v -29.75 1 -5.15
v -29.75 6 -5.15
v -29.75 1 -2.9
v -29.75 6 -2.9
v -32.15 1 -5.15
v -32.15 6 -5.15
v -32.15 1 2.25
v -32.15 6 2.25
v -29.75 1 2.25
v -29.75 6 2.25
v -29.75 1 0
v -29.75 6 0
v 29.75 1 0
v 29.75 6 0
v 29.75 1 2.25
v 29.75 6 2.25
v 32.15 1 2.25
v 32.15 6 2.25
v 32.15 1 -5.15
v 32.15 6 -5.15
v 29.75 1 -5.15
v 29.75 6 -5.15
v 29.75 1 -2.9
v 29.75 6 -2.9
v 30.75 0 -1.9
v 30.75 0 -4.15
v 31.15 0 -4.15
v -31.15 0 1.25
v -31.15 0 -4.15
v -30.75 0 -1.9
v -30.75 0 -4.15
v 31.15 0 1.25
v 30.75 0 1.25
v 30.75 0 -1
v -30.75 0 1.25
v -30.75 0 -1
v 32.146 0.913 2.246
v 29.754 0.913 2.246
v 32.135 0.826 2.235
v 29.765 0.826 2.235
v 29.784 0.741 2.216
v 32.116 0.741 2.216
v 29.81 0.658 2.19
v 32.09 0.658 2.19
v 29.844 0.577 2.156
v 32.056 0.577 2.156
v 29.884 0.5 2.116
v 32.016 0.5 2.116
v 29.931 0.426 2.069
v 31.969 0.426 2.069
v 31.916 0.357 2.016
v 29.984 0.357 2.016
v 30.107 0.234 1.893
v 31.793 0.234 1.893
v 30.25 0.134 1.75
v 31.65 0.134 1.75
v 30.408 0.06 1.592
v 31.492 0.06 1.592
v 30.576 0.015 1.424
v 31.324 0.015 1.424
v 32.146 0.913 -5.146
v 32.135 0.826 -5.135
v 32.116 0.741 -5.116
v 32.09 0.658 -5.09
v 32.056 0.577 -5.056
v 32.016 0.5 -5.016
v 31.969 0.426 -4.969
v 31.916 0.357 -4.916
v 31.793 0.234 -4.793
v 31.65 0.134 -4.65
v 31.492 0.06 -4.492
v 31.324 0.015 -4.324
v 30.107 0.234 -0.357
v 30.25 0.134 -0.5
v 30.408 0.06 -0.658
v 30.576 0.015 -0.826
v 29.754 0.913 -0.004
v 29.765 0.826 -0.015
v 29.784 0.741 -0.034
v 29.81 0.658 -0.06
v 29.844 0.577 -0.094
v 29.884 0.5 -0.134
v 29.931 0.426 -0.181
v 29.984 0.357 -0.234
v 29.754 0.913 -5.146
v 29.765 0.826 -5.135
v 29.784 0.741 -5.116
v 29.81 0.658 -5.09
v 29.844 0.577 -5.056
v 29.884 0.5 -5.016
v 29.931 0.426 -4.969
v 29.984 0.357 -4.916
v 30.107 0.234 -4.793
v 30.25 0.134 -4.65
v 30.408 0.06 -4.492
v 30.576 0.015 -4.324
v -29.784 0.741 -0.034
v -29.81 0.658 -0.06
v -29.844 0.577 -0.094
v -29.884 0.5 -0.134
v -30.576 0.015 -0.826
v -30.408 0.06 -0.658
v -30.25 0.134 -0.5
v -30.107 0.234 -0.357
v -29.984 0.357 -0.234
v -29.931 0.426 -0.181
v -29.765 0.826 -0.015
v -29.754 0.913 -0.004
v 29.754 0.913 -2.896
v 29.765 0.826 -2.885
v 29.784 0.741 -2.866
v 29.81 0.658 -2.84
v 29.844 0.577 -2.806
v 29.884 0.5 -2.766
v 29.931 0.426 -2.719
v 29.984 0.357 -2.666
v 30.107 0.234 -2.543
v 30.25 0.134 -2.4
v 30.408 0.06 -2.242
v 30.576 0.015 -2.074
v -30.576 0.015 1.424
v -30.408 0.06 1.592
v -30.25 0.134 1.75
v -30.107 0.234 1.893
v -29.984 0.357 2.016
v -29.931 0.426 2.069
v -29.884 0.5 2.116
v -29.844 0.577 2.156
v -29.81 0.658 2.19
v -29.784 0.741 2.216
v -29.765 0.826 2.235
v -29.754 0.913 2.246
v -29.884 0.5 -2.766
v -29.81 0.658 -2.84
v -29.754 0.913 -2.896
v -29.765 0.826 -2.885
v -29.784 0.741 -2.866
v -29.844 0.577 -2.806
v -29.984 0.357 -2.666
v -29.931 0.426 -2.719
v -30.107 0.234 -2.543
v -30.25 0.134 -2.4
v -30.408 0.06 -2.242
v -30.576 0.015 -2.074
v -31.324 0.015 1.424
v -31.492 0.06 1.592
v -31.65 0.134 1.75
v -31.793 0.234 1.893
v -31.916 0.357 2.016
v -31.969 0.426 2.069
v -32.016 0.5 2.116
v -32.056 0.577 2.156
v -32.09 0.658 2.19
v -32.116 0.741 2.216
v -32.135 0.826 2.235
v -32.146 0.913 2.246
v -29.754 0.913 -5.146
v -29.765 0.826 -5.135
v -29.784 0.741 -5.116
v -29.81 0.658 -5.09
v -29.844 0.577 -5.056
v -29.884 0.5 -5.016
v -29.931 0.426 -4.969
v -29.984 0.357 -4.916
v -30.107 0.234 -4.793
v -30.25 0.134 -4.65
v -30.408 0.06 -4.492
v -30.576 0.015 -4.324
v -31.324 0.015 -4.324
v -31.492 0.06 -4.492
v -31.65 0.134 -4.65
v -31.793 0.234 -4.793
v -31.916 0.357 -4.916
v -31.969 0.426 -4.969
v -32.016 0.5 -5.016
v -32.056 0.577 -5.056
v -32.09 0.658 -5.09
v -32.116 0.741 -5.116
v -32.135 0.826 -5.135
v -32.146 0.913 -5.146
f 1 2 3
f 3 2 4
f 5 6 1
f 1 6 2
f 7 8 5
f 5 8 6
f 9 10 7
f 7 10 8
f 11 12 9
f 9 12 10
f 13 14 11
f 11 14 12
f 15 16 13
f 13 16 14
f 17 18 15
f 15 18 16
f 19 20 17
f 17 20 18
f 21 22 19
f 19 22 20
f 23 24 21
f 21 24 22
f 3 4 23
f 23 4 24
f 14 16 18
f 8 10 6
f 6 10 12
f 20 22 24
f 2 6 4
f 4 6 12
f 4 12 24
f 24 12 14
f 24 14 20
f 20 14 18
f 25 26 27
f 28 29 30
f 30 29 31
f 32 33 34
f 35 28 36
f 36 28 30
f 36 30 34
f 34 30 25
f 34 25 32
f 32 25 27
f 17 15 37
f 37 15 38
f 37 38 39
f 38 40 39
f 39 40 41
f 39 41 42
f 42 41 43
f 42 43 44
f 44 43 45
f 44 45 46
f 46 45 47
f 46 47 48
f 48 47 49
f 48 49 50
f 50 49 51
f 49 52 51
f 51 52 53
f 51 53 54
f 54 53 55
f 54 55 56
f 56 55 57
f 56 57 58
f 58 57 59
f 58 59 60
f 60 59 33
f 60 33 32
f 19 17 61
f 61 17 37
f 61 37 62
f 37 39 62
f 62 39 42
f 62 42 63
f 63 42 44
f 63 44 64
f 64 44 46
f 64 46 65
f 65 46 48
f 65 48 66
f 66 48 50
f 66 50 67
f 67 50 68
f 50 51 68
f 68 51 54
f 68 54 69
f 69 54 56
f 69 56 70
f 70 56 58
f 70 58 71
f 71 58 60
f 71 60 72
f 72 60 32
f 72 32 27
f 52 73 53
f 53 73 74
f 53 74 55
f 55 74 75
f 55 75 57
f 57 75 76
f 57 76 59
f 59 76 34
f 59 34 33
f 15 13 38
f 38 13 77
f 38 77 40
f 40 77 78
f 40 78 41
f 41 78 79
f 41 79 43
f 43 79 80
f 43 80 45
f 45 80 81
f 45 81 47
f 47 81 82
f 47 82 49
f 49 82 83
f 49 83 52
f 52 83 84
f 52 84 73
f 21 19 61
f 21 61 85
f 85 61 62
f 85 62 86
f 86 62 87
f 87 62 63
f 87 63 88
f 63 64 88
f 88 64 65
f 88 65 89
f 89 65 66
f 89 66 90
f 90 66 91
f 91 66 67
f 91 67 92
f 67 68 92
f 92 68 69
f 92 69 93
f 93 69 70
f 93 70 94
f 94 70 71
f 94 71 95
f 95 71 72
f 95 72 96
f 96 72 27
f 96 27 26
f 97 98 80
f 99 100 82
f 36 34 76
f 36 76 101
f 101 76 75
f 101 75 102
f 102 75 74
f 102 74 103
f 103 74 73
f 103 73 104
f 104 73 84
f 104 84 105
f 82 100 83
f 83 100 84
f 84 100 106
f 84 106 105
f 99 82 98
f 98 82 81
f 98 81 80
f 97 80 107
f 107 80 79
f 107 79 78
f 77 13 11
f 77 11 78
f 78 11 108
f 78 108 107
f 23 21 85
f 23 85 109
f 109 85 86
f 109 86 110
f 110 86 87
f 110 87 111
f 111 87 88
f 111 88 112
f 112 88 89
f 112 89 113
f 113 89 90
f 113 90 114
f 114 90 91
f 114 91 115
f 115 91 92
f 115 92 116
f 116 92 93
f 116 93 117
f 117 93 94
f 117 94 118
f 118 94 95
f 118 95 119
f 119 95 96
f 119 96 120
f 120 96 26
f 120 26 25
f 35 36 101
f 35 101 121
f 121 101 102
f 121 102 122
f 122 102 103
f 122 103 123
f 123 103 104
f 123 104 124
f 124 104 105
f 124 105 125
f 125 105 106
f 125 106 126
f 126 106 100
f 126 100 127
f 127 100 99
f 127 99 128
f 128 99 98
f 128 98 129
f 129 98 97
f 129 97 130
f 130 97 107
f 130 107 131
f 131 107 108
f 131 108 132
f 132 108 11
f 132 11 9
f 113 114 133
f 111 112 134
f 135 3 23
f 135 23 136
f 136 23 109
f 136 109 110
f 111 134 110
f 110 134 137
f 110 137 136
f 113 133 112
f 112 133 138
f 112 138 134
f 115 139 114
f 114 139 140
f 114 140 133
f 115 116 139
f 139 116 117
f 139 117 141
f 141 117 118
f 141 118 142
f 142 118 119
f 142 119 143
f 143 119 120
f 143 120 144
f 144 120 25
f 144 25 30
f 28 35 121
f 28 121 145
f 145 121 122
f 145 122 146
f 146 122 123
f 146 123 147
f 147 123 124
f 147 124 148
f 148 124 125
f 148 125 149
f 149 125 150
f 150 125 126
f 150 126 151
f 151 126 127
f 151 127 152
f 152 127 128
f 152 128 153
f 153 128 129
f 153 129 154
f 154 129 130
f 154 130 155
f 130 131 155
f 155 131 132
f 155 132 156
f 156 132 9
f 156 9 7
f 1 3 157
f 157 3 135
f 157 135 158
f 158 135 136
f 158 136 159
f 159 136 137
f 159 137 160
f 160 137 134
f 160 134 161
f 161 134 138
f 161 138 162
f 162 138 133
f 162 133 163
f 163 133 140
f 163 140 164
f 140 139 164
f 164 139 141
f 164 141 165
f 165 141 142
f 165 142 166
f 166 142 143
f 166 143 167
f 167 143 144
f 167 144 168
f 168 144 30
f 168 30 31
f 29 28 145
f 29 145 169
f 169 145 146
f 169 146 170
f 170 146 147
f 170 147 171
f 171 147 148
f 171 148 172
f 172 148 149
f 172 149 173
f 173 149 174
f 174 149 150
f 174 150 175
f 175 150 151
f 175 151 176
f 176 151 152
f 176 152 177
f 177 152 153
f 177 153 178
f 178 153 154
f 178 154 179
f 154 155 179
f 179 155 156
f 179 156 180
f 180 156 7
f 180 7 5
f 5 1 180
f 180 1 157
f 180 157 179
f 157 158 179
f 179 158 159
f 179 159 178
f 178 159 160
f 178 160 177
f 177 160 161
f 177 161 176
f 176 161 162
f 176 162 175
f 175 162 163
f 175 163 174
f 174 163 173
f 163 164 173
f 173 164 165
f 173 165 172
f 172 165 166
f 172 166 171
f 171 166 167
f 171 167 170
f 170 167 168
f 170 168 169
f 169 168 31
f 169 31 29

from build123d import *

# Parameters (mm, degrees)
BOSS_EXTRUDE1_DEPTH = 6
FILLET1_R           = 1


with BuildPart() as part:
    # Sketch1 → Boss-Extrude1 (new body)
    with BuildSketch(Plane(origin=(0, 0, 0), x_dir=(1, 0, 0), z_dir=(0, 1, 0))):
        Polygon((-29.75, 2.9), (29.75, 2.9), (29.75, 5.15), (32.15, 5.15), (32.15, -2.25), (29.75, -2.25), (29.75, 0), (-29.75, 0), (-29.75, -2.25), (-32.15, -2.25), (-32.15, 5.15), (-29.75, 5.15), align=None)
    extrude(amount=BOSS_EXTRUDE1_DEPTH)

    # Fillet1
    fillet1_edges = [part.edges().sort_by_distance(p)[0] for p in [
        (0, 0, -2.9),
        (29.75, 0, -4.025),
        (30.95, 0, -5.15),
        (32.15, 0, -1.45),
        (30.95, 0, 2.25),
        (29.75, 0, 1.125),
        (0, 0, 0),
        (-29.75, 0, 1.125),
        (-30.95, 0, 2.25),
        (-32.15, 0, -1.45),
        (-30.95, 0, -5.15),
        (-29.75, 0, -4.025),
    ]]
    fillet(fillet1_edges, radius=FILLET1_R)


solid = part.part
